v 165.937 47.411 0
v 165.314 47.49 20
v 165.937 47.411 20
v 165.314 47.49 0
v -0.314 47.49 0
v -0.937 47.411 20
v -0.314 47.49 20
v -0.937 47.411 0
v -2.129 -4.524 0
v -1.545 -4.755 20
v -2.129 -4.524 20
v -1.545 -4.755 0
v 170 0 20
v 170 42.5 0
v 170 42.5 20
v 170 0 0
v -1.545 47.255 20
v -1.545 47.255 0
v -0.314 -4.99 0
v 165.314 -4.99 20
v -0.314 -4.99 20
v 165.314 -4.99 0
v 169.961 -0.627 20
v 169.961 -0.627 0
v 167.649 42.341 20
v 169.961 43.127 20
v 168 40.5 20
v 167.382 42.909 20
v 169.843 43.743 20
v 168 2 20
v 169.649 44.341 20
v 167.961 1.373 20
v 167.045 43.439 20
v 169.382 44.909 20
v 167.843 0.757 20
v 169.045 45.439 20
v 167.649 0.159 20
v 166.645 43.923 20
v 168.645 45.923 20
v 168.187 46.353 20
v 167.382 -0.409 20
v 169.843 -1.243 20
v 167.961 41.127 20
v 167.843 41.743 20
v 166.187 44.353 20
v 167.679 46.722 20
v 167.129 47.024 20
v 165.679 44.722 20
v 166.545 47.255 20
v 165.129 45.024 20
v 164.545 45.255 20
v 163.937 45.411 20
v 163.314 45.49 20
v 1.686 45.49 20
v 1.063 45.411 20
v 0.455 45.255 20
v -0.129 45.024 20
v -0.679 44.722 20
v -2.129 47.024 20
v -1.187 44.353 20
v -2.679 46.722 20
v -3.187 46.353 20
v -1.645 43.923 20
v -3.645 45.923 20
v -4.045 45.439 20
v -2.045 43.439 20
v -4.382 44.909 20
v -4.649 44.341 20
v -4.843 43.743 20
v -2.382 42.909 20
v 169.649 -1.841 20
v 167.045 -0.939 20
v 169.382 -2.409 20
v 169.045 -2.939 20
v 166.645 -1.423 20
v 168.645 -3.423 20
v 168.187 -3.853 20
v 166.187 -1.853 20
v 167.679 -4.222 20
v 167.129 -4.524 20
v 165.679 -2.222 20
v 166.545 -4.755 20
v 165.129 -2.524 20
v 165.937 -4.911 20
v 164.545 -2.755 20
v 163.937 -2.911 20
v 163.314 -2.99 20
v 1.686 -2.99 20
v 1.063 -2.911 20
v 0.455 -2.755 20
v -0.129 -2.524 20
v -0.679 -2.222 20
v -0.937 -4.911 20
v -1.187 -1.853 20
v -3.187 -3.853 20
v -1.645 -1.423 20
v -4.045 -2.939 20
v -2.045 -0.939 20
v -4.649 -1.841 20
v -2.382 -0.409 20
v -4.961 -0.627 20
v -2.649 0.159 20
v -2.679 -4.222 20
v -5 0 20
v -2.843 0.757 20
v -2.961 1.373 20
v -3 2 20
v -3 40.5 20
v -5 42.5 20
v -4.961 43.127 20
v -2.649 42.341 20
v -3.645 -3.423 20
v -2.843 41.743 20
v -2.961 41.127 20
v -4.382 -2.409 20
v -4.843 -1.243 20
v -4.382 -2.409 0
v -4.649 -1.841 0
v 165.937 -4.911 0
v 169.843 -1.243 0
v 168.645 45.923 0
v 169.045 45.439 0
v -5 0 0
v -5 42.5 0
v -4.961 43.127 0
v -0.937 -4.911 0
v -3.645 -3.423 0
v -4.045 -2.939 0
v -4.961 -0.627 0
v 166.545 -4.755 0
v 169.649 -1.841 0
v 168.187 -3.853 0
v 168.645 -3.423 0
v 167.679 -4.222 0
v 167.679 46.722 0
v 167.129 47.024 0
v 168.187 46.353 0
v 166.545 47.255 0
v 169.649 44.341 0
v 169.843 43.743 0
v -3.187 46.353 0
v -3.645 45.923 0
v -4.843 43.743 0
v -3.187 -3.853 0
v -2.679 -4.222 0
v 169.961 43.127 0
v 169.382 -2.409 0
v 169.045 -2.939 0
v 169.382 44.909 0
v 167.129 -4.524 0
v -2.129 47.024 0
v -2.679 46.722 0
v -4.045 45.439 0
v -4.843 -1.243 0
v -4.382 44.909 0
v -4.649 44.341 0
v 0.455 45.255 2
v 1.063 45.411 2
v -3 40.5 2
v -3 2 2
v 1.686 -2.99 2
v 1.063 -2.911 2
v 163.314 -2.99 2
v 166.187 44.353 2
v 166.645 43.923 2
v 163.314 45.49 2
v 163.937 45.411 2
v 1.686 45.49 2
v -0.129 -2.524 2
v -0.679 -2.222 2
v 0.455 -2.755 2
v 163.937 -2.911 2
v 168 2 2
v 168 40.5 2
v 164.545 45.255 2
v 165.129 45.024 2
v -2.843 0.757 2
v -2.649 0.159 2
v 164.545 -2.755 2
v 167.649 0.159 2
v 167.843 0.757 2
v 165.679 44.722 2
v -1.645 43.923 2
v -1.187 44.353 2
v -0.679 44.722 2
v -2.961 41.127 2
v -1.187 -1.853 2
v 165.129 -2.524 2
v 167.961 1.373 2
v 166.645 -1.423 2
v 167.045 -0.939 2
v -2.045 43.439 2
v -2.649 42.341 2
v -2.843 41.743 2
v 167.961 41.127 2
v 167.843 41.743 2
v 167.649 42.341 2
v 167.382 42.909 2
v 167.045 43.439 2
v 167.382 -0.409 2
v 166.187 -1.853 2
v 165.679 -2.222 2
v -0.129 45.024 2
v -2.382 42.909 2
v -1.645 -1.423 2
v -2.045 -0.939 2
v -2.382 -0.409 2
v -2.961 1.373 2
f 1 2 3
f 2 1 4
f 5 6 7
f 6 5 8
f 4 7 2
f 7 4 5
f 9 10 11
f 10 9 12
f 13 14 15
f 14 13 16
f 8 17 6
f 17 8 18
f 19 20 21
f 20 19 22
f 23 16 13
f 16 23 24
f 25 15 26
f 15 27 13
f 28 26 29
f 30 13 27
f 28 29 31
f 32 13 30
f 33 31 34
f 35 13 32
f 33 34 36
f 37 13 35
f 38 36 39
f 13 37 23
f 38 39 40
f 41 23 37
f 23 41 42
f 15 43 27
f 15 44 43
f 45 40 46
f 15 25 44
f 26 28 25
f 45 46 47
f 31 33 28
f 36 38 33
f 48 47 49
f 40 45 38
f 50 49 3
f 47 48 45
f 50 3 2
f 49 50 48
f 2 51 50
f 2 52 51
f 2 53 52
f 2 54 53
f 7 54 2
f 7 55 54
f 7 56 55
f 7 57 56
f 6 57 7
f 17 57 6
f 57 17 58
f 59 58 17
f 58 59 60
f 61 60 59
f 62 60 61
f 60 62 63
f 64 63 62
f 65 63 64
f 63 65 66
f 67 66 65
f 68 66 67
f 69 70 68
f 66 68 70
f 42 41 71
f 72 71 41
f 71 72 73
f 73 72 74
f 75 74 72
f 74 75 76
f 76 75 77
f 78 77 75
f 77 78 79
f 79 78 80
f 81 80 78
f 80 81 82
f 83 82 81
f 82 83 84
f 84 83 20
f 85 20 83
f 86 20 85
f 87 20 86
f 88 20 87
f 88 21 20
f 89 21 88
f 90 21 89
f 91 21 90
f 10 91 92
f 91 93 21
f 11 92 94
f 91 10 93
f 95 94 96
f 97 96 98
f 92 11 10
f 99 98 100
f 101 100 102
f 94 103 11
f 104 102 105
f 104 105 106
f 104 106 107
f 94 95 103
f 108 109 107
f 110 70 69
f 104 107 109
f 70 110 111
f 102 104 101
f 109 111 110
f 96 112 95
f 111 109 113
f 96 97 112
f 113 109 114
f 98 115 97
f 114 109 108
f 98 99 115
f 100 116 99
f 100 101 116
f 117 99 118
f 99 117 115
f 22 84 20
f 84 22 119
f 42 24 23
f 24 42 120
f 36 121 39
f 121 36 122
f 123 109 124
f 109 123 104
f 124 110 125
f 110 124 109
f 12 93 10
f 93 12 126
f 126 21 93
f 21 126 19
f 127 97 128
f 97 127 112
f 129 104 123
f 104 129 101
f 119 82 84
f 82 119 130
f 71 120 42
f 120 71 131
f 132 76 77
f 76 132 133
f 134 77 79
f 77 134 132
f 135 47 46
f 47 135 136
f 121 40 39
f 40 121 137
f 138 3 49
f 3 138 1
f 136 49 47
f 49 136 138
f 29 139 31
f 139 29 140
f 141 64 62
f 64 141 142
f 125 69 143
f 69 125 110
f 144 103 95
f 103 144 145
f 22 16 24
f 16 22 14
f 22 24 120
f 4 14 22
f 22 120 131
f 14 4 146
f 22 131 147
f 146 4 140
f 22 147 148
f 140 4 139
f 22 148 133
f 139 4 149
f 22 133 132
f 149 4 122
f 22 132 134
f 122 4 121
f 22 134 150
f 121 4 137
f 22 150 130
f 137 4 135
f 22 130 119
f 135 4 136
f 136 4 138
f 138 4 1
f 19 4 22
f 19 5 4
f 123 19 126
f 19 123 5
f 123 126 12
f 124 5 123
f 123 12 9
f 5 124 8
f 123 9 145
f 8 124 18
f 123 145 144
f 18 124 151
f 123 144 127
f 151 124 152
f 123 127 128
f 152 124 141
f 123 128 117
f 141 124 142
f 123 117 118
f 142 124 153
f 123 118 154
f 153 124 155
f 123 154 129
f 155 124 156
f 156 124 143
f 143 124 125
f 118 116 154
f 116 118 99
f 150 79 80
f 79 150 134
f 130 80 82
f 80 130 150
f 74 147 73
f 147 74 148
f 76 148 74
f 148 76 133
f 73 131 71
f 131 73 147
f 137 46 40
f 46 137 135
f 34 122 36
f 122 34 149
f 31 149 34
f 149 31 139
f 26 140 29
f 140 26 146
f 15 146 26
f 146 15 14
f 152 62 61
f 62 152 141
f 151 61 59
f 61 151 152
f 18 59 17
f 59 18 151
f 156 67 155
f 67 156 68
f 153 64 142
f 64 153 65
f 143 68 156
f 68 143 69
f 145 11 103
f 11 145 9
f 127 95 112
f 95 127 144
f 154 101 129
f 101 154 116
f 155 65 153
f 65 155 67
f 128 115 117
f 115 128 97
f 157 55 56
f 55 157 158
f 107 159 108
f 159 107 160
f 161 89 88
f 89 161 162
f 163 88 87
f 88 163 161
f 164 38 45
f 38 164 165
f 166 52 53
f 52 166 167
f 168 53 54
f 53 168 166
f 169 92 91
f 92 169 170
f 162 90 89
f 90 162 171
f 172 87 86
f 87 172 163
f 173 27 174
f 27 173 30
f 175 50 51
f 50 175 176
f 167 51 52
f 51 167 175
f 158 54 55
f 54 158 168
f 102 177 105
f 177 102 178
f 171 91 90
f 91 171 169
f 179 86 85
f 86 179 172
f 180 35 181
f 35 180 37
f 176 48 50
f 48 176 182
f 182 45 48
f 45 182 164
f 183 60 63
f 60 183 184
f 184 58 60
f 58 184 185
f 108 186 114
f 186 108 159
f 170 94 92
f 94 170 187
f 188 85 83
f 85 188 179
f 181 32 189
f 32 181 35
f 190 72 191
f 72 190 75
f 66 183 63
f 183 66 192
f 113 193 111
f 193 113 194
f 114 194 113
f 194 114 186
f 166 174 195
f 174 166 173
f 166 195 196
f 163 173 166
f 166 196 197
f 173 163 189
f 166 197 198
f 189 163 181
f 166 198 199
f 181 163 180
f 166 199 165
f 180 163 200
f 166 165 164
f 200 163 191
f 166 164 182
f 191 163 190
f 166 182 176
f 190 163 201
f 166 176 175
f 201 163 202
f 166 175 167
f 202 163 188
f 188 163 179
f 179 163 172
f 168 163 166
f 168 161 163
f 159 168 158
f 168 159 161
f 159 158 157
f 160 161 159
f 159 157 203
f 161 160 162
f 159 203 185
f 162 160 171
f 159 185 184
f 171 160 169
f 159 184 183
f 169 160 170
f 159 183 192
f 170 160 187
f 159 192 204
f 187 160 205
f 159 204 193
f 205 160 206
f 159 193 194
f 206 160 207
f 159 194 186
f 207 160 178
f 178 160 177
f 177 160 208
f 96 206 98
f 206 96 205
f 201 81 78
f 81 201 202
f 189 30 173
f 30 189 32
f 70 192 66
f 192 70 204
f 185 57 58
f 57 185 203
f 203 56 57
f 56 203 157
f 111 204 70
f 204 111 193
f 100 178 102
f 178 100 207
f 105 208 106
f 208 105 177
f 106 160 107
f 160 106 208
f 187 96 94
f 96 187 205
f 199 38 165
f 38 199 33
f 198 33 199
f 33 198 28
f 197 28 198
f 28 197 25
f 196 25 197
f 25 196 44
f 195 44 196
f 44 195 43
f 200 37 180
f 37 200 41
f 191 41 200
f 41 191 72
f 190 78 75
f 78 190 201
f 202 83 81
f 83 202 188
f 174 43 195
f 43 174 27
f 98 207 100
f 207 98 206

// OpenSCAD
$fn=50;
voff1 = 14;
voff2 = 38;
hoff1 = 15;
hoff2 = 16;
height = 12;

difference() {
        minkowski() {
            cube([165,42.5,10]);
            cylinder(h=10, d=10);
        };
        translate([2,2,2])
            minkowski() {
                cube([161,38.5,10]);
                cylinder(h=10, d=10);
            };
}        
